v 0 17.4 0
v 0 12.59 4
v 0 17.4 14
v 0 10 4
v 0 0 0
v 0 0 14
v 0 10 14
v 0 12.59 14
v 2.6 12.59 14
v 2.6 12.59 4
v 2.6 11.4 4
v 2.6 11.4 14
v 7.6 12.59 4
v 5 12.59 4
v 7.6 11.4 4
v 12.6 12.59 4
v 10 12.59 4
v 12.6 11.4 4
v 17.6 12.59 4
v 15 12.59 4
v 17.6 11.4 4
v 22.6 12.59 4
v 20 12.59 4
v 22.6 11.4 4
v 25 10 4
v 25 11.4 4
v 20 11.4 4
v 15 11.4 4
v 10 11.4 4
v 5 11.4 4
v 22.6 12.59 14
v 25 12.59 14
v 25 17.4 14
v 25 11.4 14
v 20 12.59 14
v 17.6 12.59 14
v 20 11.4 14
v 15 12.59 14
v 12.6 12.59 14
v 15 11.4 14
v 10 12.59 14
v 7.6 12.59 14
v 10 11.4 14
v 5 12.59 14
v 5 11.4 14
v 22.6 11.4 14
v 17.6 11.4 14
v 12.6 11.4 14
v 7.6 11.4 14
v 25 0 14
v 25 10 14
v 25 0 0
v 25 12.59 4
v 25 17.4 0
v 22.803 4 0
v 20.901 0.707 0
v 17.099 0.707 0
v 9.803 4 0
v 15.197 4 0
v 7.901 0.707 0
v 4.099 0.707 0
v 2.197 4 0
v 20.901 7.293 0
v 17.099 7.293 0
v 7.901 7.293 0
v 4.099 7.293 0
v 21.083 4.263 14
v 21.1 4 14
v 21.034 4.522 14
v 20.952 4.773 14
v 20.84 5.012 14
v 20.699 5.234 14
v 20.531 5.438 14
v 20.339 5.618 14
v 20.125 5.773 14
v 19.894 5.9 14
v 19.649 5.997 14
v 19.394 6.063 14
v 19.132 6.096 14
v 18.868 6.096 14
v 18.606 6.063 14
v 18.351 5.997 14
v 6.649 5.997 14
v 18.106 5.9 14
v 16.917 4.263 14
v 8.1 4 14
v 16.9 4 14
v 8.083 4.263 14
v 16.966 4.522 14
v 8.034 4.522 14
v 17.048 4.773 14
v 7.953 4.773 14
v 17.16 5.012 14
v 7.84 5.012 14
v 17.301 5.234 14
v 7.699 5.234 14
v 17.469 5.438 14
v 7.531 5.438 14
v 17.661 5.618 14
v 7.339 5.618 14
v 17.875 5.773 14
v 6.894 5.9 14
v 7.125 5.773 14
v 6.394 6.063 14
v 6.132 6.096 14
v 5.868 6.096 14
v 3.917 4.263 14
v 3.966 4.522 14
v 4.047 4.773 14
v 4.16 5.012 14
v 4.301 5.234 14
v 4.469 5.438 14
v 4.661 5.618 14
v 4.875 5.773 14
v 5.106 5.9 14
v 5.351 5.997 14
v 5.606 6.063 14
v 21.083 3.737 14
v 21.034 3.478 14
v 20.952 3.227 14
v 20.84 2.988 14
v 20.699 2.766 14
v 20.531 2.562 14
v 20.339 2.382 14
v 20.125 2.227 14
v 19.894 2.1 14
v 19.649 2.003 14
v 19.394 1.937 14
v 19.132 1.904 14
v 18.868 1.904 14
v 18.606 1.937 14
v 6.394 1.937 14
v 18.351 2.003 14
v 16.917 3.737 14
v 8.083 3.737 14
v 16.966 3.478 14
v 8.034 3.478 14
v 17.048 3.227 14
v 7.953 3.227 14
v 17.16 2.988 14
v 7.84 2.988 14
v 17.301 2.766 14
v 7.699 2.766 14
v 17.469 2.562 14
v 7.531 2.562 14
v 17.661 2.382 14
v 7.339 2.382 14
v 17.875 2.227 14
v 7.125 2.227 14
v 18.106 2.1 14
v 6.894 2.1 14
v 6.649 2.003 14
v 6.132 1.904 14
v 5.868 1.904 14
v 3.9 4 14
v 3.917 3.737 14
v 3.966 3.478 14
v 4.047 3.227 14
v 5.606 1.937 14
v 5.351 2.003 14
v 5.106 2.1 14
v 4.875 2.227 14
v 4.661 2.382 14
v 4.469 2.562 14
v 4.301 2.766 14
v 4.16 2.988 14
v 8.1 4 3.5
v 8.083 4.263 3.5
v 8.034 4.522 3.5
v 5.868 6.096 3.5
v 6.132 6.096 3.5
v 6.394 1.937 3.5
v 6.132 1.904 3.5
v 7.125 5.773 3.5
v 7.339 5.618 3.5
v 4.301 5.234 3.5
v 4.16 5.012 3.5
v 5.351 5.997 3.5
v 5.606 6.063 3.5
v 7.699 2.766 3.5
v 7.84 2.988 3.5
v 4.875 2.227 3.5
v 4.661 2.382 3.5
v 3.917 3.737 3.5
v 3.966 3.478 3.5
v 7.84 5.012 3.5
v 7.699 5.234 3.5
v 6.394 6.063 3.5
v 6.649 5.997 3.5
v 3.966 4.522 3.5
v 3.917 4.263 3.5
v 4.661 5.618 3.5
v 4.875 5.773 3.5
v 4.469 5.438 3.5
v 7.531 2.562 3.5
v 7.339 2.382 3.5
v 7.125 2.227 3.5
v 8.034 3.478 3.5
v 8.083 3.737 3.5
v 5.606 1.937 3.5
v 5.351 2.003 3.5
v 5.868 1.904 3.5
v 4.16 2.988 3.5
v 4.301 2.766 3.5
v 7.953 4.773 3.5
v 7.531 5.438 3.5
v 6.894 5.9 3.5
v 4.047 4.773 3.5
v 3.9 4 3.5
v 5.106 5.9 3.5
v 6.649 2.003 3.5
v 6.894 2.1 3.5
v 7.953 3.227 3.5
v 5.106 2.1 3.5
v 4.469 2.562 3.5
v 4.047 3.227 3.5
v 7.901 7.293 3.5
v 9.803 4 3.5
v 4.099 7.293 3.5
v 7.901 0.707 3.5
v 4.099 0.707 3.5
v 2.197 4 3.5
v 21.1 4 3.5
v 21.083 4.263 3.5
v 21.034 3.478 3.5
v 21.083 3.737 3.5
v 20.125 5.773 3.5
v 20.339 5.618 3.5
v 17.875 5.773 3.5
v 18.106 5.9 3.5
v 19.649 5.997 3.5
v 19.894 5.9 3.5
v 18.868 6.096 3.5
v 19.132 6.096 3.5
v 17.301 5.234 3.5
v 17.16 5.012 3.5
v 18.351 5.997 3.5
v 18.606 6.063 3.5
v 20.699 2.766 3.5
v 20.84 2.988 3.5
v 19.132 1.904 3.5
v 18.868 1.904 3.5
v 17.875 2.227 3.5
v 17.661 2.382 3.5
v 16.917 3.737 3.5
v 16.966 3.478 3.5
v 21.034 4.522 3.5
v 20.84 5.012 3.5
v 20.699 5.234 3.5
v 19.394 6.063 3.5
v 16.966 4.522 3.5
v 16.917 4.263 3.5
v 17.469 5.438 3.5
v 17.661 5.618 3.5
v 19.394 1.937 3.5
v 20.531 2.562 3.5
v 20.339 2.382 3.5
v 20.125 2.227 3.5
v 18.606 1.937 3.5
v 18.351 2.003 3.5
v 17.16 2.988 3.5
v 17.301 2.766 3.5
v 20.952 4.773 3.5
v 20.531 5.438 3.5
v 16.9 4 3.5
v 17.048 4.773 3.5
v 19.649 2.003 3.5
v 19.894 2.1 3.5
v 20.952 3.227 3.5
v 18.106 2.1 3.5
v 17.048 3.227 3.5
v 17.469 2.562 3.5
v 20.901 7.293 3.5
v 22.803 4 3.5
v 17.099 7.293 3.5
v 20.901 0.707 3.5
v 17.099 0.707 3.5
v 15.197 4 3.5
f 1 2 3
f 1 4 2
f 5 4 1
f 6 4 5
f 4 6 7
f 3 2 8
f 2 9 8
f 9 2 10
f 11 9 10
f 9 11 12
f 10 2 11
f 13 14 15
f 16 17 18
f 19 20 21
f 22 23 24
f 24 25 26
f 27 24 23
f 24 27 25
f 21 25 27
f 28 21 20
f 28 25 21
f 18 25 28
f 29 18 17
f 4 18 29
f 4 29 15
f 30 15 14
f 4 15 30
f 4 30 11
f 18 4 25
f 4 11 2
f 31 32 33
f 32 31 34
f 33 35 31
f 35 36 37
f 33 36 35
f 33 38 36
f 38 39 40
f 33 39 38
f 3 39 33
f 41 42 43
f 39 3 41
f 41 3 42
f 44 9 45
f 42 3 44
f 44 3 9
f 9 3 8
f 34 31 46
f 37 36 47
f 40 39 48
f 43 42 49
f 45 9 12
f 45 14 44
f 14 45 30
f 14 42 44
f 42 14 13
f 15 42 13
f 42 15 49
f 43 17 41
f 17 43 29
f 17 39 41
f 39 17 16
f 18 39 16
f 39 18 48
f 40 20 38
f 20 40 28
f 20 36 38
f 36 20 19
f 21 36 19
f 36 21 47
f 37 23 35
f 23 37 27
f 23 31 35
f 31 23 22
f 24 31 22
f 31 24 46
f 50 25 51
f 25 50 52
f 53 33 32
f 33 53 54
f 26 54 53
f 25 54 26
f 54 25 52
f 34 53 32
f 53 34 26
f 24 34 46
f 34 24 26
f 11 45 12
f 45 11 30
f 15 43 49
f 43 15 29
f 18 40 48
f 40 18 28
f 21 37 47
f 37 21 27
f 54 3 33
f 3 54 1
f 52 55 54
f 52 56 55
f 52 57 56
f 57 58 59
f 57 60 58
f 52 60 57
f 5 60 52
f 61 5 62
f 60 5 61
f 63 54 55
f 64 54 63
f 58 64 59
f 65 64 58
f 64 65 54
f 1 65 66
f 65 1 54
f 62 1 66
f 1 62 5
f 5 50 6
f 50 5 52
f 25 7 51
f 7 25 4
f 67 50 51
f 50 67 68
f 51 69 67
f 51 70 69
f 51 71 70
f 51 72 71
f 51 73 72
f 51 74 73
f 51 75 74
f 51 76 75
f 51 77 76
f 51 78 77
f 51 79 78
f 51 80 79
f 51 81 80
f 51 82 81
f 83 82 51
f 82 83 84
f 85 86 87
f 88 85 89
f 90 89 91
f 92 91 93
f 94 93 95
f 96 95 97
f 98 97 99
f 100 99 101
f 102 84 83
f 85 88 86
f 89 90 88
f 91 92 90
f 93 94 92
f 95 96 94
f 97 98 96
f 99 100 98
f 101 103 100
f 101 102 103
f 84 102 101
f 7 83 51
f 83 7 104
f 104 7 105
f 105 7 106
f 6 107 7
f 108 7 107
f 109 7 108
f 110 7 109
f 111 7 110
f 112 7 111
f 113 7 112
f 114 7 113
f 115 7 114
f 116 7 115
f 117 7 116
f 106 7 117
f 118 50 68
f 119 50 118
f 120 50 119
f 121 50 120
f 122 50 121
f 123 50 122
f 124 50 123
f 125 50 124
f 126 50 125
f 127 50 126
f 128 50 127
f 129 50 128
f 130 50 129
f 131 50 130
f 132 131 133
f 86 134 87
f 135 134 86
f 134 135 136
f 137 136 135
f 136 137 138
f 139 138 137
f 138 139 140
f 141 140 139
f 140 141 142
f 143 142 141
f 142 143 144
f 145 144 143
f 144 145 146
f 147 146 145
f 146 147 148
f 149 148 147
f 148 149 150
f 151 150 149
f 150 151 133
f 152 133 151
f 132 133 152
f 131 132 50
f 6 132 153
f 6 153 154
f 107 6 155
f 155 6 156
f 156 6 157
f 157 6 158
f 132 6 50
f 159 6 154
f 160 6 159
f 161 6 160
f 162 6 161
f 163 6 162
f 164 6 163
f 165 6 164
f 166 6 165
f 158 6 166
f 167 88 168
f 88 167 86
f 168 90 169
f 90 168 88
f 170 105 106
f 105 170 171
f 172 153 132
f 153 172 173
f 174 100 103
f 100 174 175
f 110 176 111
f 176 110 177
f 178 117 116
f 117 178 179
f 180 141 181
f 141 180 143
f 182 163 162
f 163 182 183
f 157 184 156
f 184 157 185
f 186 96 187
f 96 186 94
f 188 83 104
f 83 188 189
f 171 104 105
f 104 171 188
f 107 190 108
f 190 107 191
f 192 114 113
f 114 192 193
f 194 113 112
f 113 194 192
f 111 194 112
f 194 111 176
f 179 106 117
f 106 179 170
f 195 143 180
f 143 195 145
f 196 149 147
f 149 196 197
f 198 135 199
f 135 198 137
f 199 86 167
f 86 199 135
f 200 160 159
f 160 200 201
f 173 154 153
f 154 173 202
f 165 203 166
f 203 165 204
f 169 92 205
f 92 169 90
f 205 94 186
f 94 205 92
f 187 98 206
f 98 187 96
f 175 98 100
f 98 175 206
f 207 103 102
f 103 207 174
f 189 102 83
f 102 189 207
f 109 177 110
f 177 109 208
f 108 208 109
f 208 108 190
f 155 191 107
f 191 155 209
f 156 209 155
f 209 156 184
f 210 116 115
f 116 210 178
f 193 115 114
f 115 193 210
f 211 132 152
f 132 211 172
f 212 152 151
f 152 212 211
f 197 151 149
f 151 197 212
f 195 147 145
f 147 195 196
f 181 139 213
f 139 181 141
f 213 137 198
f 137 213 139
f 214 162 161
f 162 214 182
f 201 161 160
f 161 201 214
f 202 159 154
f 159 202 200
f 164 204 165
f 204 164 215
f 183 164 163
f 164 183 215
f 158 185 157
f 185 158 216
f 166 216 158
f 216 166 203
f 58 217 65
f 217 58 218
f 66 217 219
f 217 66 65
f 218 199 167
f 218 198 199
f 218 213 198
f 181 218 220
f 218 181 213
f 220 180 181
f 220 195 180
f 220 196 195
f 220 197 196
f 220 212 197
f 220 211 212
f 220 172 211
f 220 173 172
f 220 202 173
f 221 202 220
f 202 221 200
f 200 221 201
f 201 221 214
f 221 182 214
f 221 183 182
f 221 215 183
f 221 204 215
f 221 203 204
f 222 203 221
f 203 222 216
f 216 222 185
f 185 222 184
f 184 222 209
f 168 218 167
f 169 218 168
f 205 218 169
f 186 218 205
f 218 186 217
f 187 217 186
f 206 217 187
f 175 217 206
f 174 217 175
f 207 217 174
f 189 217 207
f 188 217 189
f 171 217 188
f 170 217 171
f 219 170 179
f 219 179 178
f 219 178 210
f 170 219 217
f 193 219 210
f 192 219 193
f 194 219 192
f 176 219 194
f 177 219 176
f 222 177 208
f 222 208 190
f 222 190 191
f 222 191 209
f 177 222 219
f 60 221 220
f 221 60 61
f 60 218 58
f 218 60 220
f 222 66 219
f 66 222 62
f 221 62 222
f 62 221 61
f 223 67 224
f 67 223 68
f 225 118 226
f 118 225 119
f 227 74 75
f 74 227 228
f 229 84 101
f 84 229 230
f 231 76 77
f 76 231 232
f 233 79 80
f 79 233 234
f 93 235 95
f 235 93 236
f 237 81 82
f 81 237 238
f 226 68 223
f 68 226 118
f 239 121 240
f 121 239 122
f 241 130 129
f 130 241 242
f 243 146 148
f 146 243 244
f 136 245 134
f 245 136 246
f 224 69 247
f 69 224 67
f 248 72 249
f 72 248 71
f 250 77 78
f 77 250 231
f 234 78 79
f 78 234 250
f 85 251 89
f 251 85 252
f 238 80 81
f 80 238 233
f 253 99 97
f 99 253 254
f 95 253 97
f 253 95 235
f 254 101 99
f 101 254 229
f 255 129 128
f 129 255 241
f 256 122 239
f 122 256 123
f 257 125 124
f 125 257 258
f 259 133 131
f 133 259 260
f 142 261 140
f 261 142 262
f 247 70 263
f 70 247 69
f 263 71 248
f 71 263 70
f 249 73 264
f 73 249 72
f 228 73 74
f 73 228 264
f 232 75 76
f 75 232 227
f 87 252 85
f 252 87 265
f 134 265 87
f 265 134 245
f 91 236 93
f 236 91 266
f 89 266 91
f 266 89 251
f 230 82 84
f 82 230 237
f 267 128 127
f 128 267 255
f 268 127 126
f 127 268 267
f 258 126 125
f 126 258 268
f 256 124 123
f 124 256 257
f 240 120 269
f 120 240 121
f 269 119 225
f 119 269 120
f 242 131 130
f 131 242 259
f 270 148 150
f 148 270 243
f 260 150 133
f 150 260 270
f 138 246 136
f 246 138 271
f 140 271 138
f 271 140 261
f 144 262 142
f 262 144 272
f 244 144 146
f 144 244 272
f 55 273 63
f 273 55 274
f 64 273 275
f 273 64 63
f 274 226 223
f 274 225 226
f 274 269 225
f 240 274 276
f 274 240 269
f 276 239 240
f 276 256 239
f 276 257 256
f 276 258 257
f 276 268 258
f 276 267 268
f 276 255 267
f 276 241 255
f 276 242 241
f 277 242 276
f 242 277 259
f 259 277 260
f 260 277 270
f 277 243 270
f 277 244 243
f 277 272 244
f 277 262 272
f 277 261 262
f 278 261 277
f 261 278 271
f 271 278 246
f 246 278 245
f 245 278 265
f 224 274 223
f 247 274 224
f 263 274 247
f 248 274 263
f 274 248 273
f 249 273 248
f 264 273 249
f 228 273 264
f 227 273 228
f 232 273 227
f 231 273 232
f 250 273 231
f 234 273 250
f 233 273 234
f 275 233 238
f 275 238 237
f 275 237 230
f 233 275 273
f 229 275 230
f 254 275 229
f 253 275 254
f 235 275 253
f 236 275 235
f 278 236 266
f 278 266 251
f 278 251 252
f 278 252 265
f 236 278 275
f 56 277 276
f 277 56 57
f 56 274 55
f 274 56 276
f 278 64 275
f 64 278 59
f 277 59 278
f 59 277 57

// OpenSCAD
// Y-belt retainer/tensioner
// May 2012 John Newman

// This parameter deterimes how far the belt is held above the deck
dRise = 0;			// Added to the depth to make the belt run horizontal

// Belt dimensions - These are for T2.5, see below for T5
//tBase = 1.25;		// Thickness of belt base
//tFull = 2.0;			// Thickness of Belt at teeth
//wTooth = 1.4;		// Width of tooth (not actual, req)
//wSpace = 1.1;		// Width of space
//wBelt = 6.2;		// Width of belt

// Belt dimensions - These are for T5
tBase = 1.5;		// Thickness of belt base
tFull = 2.7;			// Thickness of Belt at teeth
wTooth = 2.6;		// Width of tooth (not actual, req)
wSpace = 2.4;		// Width of space
wBelt = 10;		// Width of belt


// Misc params
wHex = 6.9;		// Width of trap for hex nut
dHex	= 2.5;			// Depth of trap for hex nut
rM3 = 1.7;			// Radius of M3 bolt hole
sDrop = wHex/2-0.5; //2.8;		// Driver screw drop from base of slider
Adjust = 0.5;		// Spacing for things to fit inside other things!
pWidth = 9;			// Screw platform width
pHeight = 5;		// Screw platform height

// Base parameters
bwExt = 20;		// Widest part of base
bwInt = 15;			// inside width, where slider goes
blExt = 30;			// Overall length of base
blHed = 6;			// Head of base whch takes the strain !
bdExt = 12.5;		// This included a minimum floor thickness of 2mm (?)
bRoof = 2.8;		// The thickness of the roof which holds the slider in
bFloor = 1;			// The thickness of the floor under the slider (minimum)
bdSoc = bdExt-(bRoof+bFloor);		// 'Socket' depth for slider to go in

// Slider parameters
swMax = bwInt - Adjust;	// Wide part of slider
sdMax = bdSoc-Adjust;		// Height of slider

lBelt = blExt*2;		// Length of a bit of belt!
rMsk = blExt/3 ;		// Radius of part of mount masking...

module sliderpart() {
	difference() {
		cube([blExt-blHed,swMax,sdMax],center=true);
		// Make a hole for the bolt end
	//	translate([(blExt-blHed)/2-2,0,(sdMax/2)-sDrop]) rotate([30,0,0]) rotate([0,90,0]) cylinder(10,rM3+0.5,rM3+0.5,$fn=6);
		// Make a fracture to cause fill
		translate([(blExt-blHed)/2-4.2,0,(sdMax-tFull)/2+1]) cube([0.05,swMax-4.4,sdMax],center=true) ;
		// Finally indent for belt
		translate([-lBelt/2,-wBelt/2,-sdMax/2-0.1]) belt();
	}
}

// Note this is positioned so that the slider is centered on the XY plane
module basepart() {
	union() {
		difference() {
			translate([0,0,-dRise/2]) cube([blExt,bwExt,bdExt+dRise],center=true);
			// Remove the space for the slider
			translate([-blHed,0,(bFloor-bRoof)/2]) cube([blExt,bwInt,bdSoc],center=true);
			// Remove a hole for the bolt
			translate([(blExt/2-9),0,bFloor+sDrop-bdExt/2]) rotate([30,0,0]) rotate([0,90,0]) cylinder(15,rM3,rM3);
			// An indentation for the bolt head
			translate([(blExt/2)-(blHed+5-dHex),0,bFloor+sDrop-bdExt/2]) rotate([30,0,0]) rotate([0,90,0]) cylinder(5,wHex/2,wHex/2,$fn=6);
			// A slot for the belt to come through
			translate([blExt/2-blHed,0,(bdExt-tFull-0.61)/2-bRoof]) cube([15,wBelt+2,tFull+0.6],center=true);
		}
		translate([0,bwExt/2 + (pWidth/2-0.01),-bdExt/2+pHeight/2]) screwmount() ;
		translate([0,-(bwExt/2 + (pWidth/2-0.01)),-bdExt/2+pHeight/2]) screwmount() ;
	}
}

module belt() {
	cube([lBelt,wBelt,tBase]) ;
	for (inc = [0:(wTooth+wSpace):lBelt-wTooth]) translate([inc,0,tBase-0.01]) cube([wTooth,wBelt,(tFull-tBase)]) ;
}

module screwmount() {
	difference() {
		cube([blExt,pWidth,pHeight],center=true);
		// Bolt holes
		translate([(blExt-pWidth)/2,0,-(pHeight/2+1)]) rotate([0,0,30]) cylinder(pHeight+2,rM3,rM3,$fn=6);
		translate([-(blExt-pWidth)/2,0,-(pHeight/2+1)]) rotate([0,0,30]) cylinder(pHeight+2,rM3,rM3,$fn=6);
		// Nut traps
		translate([(blExt-pWidth)/2,0,pHeight/2-dHex-0.01]) rotate([0,0,30]) cylinder(5,wHex/2,wHex/2,$fn=6);
		translate([-(blExt-pWidth)/2,0,pHeight/2-dHex-0.01]) rotate([0,0,30]) cylinder(5,wHex/2,wHex/2,$fn=6);
	}
}



// ---- this is the only thing I've done, just using the belt shape for 
// ---- my purposes here, misan.


/*
translate([0,0,14]) rotate([-90,0,0])  {
//	union() {
	translate([0,10,0]) cube([25,4,15.4]);
	translate([0,0,12.4]) cube([25,14,3]);
}
*/



translate([0,0,14]) rotate([-90,0,0]) difference() {
	union() {
        translate([0,10,0]) cube([25,4,17.4]);
        translate([0,0,11.4])
        //move teeth to back wall
        difference(){
            cube([25,14,6]);
            translate([0,0,-1.5]) belt();
        }    
        cube([25,14,10]);
	}

	translate([6,25,4]) rotate([90,0,0]) cylinder(d=4.2, h=30,$fn=50);
	translate([6,14.5,4]) rotate([90,0,0]) rotate([0,0,0]) cylinder(r=6.5 / cos(180 / 6) / 2 + 0.05, h=4,$fn=6);
     
	translate([19,25,4]) rotate([90,0,0]) cylinder(d=4.2, h=30,$fn=50);
	translate([19,14.5,4]) rotate([90,0,0]) rotate([0,0,0]) cylinder(r=6.5 / cos(180 / 6) / 2 + 0.05, h=4,$fn=6);
 
}






/*
translate([40,0,14]) rotate([-90,0,0]) difference() {
	union() {
	translate([0,10,0]) cube([25,4,15.4]);
	translate([0,0,11.4]) cube([25,14,4]);
		difference() {
			cube([25,14,11]);
			translate([0,10,12]) 			rotate([180,0,0])  belt();
		}
	}

	translate([6,25,4]) rotate([90,0,0]) cylinder(d=4.2, h=30,$fn=16);
	translate([6,2,4]) rotate([90,0,0]) rotate([0,0,0]) cylinder(r=7 / cos(180 / 6) / 2 + 0.05, h=4,$fn=6);
     
	translate([19,25,4]) rotate([90,0,0]) cylinder(d=4.2, h=30,$fn=16);
	translate([19,2,4]) rotate([90,0,0]) rotate([0,0,0]) cylinder(r=7 / cos(180 / 6) / 2 + 0.05, h=4,$fn=6);

 
    
//	translate([-1,7,4]) rotate([0,90,0]) cylinder(r=4.2/2, h=27,$fn=16);
//	translate([-1,7,4]) rotate([0,90,0]) rotate([0,0,0]) cylinder(r=7 / cos(180 / 6) / 2 + 0.05, h=4,$fn=6);
}
*/
